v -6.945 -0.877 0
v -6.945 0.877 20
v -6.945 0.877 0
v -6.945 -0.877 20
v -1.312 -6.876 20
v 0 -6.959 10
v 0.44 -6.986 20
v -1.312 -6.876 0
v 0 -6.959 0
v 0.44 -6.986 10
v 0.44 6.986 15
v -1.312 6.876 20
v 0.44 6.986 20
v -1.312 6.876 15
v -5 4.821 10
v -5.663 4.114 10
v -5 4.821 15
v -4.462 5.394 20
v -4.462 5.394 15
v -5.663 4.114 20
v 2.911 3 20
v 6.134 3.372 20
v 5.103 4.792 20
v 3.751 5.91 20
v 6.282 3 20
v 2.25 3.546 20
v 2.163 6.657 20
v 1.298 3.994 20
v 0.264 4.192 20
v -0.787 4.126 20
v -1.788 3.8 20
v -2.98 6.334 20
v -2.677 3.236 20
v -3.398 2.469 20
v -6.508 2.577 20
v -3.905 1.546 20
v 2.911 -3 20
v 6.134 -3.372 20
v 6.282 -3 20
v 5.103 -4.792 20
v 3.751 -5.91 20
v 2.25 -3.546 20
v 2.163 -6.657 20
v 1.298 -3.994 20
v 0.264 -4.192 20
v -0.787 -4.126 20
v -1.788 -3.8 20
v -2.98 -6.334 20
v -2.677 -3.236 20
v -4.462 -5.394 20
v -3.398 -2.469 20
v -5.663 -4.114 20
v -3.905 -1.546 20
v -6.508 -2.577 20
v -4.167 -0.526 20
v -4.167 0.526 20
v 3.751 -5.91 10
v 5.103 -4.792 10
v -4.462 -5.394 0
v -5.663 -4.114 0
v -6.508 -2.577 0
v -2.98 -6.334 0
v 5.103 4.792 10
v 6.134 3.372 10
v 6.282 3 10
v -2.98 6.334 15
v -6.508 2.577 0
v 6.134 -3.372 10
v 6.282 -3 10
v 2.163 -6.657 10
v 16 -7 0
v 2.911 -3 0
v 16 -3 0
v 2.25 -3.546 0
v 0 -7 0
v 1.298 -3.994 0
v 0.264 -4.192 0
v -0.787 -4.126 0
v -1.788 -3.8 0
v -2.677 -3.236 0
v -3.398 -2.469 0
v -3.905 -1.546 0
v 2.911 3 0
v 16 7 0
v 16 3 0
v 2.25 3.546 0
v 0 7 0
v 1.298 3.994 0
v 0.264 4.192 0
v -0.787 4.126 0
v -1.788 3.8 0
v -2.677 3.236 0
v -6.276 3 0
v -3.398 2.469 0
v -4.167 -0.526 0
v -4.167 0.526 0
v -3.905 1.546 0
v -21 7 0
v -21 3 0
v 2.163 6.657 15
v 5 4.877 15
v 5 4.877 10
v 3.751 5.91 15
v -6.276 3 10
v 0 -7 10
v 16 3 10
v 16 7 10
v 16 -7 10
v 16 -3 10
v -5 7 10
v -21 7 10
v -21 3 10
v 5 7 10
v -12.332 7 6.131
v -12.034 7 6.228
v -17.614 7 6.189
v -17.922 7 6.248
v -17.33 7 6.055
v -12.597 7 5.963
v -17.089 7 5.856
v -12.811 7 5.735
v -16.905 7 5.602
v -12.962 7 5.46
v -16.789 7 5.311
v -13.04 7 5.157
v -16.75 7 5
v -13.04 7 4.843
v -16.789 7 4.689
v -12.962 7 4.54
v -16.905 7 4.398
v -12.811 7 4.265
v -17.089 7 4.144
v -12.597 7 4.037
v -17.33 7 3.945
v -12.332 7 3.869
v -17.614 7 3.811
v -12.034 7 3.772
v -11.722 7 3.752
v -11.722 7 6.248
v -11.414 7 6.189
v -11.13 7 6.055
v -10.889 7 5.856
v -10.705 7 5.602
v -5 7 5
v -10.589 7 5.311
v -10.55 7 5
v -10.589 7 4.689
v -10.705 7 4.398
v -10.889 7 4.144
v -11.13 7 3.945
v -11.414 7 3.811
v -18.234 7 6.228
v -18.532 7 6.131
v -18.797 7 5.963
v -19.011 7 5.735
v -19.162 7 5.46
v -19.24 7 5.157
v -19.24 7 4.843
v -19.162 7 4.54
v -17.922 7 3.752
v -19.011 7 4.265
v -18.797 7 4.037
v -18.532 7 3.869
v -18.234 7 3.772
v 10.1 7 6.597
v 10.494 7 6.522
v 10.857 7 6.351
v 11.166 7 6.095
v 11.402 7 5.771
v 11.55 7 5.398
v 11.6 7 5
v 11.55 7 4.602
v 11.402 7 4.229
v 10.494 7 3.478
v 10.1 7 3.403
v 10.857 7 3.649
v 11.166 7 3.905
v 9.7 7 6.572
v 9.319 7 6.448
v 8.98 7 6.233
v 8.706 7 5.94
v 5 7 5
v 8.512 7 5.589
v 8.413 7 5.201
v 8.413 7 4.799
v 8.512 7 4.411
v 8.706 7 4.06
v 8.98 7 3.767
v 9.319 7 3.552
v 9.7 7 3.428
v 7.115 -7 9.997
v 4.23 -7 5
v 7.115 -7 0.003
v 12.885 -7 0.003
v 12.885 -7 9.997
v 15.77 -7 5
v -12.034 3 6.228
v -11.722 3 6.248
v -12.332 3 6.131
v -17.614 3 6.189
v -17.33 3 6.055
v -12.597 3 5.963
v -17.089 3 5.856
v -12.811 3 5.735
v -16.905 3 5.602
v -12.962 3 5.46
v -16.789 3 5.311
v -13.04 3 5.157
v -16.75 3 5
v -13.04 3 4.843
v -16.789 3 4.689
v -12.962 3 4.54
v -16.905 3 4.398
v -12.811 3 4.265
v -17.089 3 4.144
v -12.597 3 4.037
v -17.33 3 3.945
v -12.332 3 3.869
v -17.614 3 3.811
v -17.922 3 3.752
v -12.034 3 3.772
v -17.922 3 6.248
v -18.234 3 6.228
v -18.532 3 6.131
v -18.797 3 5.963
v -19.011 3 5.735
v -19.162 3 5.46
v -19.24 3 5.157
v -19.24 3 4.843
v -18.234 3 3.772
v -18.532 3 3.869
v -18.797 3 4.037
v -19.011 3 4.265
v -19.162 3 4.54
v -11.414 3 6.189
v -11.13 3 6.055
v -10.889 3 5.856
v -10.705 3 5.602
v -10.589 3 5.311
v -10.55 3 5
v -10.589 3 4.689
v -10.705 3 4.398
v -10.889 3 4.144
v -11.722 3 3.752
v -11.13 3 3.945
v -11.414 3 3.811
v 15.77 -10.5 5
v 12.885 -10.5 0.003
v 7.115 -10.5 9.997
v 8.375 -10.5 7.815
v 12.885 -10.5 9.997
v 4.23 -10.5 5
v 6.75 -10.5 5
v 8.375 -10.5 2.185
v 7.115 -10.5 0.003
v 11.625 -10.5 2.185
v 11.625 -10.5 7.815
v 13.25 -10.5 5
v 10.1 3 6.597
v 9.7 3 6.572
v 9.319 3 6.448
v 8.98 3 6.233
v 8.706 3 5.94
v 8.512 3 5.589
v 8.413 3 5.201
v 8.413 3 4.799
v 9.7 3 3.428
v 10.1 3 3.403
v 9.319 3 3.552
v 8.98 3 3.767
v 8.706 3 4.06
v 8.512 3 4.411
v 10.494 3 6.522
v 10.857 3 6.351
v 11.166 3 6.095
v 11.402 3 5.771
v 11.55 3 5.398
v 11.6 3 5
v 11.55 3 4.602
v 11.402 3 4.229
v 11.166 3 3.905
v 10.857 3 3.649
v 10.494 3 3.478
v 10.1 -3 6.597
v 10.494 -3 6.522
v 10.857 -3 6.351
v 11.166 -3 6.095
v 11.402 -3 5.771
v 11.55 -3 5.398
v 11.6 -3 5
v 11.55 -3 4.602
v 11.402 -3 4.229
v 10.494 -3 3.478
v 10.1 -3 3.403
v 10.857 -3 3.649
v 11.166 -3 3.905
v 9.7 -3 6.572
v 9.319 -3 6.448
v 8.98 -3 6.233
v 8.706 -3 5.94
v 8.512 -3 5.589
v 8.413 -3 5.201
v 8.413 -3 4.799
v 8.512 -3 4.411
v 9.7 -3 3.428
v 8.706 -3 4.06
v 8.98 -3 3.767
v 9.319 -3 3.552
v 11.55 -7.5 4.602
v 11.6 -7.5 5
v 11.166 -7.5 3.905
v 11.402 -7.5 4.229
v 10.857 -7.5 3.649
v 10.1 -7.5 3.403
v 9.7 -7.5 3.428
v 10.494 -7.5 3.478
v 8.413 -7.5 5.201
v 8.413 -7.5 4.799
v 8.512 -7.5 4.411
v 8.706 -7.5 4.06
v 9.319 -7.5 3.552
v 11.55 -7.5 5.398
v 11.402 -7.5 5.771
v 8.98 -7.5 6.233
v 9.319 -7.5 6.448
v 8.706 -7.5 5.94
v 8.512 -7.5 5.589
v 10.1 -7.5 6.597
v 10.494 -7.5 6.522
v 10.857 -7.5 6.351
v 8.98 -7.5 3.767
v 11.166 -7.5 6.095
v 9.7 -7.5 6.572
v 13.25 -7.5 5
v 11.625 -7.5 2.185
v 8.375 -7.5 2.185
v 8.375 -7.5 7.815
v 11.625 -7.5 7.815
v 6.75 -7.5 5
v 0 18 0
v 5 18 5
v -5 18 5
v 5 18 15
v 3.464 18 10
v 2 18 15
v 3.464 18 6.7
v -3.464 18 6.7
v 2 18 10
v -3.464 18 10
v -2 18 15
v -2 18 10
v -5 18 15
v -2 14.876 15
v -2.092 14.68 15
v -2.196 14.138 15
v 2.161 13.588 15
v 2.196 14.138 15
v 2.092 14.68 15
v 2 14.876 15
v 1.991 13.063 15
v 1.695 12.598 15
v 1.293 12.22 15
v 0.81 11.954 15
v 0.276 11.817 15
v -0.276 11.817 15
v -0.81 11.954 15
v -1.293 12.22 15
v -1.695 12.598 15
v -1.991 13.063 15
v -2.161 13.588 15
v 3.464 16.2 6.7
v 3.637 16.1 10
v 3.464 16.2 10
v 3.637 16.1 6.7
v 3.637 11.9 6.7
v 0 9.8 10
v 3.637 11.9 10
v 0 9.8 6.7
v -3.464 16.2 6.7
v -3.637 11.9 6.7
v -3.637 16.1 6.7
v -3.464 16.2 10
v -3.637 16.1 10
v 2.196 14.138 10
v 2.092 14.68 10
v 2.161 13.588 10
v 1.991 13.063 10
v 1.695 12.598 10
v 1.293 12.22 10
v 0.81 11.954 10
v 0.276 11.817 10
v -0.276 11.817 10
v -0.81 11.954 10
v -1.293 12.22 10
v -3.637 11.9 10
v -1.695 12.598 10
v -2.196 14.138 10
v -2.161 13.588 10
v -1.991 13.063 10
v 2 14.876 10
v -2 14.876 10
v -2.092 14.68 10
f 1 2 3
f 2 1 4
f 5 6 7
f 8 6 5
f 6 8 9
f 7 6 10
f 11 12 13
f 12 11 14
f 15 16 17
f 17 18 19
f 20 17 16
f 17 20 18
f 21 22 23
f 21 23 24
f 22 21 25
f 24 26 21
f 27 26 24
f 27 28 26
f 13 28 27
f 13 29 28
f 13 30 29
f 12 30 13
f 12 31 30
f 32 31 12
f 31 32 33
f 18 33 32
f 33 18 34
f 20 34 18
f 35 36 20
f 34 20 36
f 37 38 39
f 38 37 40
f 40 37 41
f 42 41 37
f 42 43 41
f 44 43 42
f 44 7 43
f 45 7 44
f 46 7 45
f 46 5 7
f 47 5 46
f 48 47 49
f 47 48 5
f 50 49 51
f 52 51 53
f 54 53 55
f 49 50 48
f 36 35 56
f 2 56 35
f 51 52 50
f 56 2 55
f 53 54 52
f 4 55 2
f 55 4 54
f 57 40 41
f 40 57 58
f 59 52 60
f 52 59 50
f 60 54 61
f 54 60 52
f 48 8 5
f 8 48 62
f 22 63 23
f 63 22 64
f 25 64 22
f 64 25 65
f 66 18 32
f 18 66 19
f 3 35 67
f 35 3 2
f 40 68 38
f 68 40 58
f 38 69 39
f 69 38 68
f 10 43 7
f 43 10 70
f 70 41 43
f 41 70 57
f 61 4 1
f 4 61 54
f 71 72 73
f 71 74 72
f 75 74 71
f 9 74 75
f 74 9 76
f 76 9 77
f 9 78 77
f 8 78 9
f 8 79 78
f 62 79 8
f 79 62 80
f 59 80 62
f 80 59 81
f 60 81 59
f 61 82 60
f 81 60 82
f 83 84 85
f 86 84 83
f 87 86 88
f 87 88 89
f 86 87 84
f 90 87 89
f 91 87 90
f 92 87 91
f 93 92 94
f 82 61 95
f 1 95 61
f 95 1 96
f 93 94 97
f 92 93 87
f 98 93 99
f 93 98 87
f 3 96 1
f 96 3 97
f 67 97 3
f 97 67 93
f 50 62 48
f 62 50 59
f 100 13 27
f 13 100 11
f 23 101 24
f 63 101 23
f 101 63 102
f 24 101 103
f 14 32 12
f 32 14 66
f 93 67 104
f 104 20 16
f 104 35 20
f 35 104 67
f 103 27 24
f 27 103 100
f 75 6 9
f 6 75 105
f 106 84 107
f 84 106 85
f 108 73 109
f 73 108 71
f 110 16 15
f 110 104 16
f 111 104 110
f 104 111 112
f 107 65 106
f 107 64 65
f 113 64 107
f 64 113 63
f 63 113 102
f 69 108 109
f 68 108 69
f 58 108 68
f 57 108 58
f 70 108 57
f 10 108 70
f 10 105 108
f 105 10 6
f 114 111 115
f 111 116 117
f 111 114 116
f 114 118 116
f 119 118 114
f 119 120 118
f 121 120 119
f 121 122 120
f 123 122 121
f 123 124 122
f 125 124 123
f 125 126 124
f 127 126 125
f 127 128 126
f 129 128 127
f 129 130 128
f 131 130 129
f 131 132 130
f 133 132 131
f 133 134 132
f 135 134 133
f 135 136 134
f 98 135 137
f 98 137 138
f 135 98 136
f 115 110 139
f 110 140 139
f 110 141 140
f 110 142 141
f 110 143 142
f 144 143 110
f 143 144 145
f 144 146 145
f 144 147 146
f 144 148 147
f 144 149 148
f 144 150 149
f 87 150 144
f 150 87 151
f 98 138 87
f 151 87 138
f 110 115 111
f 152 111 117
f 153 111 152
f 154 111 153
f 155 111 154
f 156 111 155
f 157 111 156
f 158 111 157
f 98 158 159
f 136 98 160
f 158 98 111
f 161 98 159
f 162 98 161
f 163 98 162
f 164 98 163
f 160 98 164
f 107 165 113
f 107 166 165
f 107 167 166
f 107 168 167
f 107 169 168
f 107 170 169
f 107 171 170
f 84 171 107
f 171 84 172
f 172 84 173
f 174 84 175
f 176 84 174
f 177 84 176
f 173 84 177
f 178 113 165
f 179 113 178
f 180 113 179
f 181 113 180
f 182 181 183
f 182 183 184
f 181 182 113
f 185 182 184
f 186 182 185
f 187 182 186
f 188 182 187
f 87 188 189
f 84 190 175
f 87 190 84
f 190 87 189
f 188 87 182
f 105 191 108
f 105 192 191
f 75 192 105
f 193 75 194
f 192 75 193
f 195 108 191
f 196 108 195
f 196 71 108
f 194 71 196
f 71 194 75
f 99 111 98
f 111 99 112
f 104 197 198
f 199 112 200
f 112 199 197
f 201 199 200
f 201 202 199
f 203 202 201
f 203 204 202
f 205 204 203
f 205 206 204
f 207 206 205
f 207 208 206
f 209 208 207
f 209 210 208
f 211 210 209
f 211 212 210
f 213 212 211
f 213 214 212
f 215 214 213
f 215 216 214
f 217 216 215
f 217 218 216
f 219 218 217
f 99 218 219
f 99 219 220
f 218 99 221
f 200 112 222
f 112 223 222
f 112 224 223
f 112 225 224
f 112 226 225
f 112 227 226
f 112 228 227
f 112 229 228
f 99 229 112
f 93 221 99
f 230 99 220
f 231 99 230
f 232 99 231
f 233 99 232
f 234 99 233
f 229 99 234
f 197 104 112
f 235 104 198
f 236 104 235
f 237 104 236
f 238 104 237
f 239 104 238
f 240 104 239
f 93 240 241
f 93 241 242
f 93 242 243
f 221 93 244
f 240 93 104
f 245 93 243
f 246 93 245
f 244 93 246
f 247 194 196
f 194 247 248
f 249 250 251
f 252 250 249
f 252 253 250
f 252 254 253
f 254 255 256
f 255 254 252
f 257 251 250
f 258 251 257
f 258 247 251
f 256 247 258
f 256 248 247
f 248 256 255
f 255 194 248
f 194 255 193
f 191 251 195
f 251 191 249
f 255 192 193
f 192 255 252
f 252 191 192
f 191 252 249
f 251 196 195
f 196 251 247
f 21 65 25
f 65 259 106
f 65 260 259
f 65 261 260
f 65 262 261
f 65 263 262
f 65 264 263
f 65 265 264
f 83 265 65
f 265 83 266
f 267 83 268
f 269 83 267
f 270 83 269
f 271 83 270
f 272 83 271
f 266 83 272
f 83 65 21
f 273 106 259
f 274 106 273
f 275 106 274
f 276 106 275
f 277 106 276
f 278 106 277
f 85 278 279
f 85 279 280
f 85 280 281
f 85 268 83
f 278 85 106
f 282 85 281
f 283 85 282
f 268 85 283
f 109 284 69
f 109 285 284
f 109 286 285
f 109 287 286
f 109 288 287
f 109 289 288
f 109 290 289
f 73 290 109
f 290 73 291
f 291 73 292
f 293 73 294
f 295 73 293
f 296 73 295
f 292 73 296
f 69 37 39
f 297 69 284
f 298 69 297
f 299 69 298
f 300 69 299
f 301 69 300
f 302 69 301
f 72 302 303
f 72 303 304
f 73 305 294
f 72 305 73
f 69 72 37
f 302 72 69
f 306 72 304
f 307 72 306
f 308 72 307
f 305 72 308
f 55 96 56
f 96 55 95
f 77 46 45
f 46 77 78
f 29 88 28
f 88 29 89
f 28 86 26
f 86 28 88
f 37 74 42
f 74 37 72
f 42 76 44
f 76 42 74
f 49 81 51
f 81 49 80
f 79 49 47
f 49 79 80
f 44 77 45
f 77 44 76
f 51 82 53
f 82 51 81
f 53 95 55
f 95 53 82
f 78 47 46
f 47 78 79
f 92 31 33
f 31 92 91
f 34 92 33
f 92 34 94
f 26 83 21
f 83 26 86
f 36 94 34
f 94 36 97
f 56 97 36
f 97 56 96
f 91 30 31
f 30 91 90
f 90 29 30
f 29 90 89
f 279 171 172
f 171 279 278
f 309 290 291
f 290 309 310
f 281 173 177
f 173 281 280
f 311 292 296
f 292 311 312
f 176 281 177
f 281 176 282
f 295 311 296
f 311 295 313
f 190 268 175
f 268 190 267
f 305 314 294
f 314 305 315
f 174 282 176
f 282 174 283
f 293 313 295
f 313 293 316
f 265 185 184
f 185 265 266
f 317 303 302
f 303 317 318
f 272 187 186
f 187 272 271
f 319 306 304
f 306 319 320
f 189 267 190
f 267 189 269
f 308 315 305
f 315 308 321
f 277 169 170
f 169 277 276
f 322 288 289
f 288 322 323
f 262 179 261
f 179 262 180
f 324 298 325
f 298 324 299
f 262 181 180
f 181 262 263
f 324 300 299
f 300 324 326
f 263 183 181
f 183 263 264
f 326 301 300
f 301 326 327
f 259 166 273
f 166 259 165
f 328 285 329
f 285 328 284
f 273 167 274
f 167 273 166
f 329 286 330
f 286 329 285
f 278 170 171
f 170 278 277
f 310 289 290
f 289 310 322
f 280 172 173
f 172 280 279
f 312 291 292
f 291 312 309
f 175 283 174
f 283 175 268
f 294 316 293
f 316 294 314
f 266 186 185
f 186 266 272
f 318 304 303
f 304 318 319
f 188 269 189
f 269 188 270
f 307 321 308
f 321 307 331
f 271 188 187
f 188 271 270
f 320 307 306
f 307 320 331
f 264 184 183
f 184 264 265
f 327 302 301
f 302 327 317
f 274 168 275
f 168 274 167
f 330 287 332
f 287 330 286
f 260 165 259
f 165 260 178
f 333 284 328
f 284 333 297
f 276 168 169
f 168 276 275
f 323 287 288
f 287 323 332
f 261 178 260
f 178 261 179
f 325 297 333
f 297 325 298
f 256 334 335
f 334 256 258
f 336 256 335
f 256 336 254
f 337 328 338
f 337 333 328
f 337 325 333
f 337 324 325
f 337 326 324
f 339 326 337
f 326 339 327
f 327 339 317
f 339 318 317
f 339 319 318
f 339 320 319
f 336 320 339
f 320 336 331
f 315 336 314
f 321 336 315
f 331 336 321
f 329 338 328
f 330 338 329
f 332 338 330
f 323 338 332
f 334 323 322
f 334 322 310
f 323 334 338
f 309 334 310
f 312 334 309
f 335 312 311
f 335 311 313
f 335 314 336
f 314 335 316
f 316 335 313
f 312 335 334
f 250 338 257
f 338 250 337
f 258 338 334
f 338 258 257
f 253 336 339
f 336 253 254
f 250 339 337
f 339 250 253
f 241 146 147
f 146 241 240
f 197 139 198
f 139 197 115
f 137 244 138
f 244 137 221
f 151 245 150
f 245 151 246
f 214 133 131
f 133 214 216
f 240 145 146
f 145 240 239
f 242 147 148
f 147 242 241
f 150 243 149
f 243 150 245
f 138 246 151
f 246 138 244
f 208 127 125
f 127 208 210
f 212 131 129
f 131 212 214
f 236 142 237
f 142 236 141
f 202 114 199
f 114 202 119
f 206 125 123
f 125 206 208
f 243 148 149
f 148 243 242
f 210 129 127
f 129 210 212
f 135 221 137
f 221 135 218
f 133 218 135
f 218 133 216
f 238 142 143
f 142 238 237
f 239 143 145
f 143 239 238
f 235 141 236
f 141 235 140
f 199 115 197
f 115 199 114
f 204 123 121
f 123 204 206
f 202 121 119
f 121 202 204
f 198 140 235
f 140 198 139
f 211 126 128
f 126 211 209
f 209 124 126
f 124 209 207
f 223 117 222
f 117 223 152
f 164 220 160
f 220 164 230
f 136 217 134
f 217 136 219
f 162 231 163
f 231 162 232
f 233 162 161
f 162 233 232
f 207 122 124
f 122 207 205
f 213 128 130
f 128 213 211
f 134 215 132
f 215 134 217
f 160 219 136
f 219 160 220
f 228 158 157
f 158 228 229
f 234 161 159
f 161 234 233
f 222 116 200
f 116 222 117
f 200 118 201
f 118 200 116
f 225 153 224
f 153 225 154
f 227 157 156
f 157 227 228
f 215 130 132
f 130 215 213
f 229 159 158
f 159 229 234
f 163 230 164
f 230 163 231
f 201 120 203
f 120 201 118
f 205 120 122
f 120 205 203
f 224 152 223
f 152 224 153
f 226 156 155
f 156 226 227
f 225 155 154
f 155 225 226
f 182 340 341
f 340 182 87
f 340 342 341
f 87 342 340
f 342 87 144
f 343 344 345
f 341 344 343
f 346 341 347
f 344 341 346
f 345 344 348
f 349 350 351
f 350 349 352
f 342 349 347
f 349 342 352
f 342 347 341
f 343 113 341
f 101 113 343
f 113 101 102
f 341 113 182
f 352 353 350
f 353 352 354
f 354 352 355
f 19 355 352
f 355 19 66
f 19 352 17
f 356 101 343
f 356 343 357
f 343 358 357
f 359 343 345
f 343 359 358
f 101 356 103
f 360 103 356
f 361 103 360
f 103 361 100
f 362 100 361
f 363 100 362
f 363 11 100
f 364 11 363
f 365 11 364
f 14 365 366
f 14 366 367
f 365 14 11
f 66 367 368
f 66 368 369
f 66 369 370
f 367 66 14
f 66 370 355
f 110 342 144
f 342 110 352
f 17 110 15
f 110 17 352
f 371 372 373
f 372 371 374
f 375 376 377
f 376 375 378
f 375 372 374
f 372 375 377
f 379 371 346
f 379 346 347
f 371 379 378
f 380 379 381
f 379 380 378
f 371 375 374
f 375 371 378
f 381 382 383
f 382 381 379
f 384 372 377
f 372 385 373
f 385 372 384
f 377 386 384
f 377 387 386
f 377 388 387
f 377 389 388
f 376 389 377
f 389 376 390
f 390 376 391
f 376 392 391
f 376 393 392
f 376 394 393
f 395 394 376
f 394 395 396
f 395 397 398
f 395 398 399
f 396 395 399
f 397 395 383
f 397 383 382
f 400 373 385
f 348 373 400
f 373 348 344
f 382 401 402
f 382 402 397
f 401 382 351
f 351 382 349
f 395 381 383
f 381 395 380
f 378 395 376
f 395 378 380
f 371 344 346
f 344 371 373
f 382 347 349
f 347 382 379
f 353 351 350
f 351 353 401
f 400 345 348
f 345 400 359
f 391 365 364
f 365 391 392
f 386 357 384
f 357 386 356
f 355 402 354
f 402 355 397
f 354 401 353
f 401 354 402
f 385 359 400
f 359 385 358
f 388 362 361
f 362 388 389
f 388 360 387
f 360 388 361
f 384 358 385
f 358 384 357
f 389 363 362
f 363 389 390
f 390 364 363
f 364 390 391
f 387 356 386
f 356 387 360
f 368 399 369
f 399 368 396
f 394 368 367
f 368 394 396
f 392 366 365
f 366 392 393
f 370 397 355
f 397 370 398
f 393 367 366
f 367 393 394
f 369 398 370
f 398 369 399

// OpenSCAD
// file: halfcube.scad
module halfcube(a,orient,center) {
	translate(center==true?-a/2:0) {
		if (orient=="x")
			polyhedron (points = [[a[0],0,a[2]], [0,0,a[2]], [0,a[1],0], [0,0,0], [a[0],0,0], [a[0],a[1],0]], triangles = [[1,3,2], [4,0,5], [3,1,4], [1,2,5], [1,0,4], [0,1,5],  [5,2,4], [4,2,3]]);
		if (orient=="y")
			polyhedron (points = [[0,a[1],a[2]], [0,0,a[2]], [0,a[1],0], [0,0,0], [a[0],0,0], [a[0],a[1],0]], triangles = [[1,3,2], [1,2,0], [3,1,4], [0,2,5], [1,5,4], [1,0,5],  [5,2,4], [4,2,3]]);
		if (orient=="z")
			polyhedron (points = [[0,a[1],a[2]], [0,0,a[2]], [0,a[1],0], [0,0,0], [a[0],0,0], [a[0],0,a[2]]], triangles = [[1,3,2], [1,2,0], [3,1,4], [0,2,5], [1,5,4], [1,0,5],  [5,2,4], [4,2,3]]);
	}
}

//halfcube([10,20,30],"x",true);
//halfcube([10,20,30],"y",true);
//halfcube([10,20,30],"z",true);
// main file
include <halfcube.scad>

// качество цилиндров
$fn=25;
// наружный диаметр направляющей
d1=8;
// допуск на радиус направляющей
// (расстояние между стенками направляющей и детали)
delta1=0.2;
// диаметр М3
d2=3.2;
// диаметр гайки М3
d3=6.1;
// внешний диаметр концевика
d4=d1/2+3;
// вырез концевика
h1=d1-2;

// диаметр гайки М4
d5=8;
// ширина гайки М4
d6=d5*cos(30);
// высота гайки М4
h2=3.1+delta1;


module main(){
difference(){
	union(){
		translate([d4,d4,-10]) cylinder(20,r=d4);
		translate([d4,0,0]) cube([16,d4*2,10]);
		translate([-14,0,0]) cube([37,4,10]);
		translate([17,17.5,5]) rotate([90,0,0]) cylinder(5,r=5.77,$fn=6);
	}
	translate([9,d4-h1/2,-10.1]) cube([18,h1,21]);
	#translate([d4, d4,-10.1]) cylinder(21, r=d1/2+delta1);

	//Securing hole
	translate([17,17,5]) rotate([90,0,0]) cylinder(20,r=d2/2);
	translate([17,19.5,5]) rotate([90,0,0]) cylinder(5,r=d3/2+0.2,$fn=6);

	translate([-4.8,17,5]) rotate([90,0,0]) cylinder(20,r=2.5/2);
	translate([-11,17,5]) rotate([90,0,0]) cylinder(20,r=2.5/2);
}

rotate([0,0,-90])
translate([d4,d4,0]){
    translate([-9.8,0,5]) {
        halfcube([8+5.8,5,5],"x");
        rotate([90,0,0]) halfcube([8+5.8,5,5],"x");
    }
    difference() {
        translate([-2.9,0,0])cube([8+5.8,10,10],true);
        cylinder(r=d5/2+delta1,h=h2,$fn=6);
        translate([d4,0,h2/2])
            cube([d4*2,d6,h2],true);
        translate([d4,0,-10+delta1])
            cube([d4*2,4,20],true);
        translate([0,0,-20+delta1])cylinder(r=4/2+delta1,h=20);
    }
}
}
/* ДЕТАЛЬ */
//main();
/* ПЕЧАТЬ */
rotate([180,0,0]) translate([-d4,-d4,-10]) main();
